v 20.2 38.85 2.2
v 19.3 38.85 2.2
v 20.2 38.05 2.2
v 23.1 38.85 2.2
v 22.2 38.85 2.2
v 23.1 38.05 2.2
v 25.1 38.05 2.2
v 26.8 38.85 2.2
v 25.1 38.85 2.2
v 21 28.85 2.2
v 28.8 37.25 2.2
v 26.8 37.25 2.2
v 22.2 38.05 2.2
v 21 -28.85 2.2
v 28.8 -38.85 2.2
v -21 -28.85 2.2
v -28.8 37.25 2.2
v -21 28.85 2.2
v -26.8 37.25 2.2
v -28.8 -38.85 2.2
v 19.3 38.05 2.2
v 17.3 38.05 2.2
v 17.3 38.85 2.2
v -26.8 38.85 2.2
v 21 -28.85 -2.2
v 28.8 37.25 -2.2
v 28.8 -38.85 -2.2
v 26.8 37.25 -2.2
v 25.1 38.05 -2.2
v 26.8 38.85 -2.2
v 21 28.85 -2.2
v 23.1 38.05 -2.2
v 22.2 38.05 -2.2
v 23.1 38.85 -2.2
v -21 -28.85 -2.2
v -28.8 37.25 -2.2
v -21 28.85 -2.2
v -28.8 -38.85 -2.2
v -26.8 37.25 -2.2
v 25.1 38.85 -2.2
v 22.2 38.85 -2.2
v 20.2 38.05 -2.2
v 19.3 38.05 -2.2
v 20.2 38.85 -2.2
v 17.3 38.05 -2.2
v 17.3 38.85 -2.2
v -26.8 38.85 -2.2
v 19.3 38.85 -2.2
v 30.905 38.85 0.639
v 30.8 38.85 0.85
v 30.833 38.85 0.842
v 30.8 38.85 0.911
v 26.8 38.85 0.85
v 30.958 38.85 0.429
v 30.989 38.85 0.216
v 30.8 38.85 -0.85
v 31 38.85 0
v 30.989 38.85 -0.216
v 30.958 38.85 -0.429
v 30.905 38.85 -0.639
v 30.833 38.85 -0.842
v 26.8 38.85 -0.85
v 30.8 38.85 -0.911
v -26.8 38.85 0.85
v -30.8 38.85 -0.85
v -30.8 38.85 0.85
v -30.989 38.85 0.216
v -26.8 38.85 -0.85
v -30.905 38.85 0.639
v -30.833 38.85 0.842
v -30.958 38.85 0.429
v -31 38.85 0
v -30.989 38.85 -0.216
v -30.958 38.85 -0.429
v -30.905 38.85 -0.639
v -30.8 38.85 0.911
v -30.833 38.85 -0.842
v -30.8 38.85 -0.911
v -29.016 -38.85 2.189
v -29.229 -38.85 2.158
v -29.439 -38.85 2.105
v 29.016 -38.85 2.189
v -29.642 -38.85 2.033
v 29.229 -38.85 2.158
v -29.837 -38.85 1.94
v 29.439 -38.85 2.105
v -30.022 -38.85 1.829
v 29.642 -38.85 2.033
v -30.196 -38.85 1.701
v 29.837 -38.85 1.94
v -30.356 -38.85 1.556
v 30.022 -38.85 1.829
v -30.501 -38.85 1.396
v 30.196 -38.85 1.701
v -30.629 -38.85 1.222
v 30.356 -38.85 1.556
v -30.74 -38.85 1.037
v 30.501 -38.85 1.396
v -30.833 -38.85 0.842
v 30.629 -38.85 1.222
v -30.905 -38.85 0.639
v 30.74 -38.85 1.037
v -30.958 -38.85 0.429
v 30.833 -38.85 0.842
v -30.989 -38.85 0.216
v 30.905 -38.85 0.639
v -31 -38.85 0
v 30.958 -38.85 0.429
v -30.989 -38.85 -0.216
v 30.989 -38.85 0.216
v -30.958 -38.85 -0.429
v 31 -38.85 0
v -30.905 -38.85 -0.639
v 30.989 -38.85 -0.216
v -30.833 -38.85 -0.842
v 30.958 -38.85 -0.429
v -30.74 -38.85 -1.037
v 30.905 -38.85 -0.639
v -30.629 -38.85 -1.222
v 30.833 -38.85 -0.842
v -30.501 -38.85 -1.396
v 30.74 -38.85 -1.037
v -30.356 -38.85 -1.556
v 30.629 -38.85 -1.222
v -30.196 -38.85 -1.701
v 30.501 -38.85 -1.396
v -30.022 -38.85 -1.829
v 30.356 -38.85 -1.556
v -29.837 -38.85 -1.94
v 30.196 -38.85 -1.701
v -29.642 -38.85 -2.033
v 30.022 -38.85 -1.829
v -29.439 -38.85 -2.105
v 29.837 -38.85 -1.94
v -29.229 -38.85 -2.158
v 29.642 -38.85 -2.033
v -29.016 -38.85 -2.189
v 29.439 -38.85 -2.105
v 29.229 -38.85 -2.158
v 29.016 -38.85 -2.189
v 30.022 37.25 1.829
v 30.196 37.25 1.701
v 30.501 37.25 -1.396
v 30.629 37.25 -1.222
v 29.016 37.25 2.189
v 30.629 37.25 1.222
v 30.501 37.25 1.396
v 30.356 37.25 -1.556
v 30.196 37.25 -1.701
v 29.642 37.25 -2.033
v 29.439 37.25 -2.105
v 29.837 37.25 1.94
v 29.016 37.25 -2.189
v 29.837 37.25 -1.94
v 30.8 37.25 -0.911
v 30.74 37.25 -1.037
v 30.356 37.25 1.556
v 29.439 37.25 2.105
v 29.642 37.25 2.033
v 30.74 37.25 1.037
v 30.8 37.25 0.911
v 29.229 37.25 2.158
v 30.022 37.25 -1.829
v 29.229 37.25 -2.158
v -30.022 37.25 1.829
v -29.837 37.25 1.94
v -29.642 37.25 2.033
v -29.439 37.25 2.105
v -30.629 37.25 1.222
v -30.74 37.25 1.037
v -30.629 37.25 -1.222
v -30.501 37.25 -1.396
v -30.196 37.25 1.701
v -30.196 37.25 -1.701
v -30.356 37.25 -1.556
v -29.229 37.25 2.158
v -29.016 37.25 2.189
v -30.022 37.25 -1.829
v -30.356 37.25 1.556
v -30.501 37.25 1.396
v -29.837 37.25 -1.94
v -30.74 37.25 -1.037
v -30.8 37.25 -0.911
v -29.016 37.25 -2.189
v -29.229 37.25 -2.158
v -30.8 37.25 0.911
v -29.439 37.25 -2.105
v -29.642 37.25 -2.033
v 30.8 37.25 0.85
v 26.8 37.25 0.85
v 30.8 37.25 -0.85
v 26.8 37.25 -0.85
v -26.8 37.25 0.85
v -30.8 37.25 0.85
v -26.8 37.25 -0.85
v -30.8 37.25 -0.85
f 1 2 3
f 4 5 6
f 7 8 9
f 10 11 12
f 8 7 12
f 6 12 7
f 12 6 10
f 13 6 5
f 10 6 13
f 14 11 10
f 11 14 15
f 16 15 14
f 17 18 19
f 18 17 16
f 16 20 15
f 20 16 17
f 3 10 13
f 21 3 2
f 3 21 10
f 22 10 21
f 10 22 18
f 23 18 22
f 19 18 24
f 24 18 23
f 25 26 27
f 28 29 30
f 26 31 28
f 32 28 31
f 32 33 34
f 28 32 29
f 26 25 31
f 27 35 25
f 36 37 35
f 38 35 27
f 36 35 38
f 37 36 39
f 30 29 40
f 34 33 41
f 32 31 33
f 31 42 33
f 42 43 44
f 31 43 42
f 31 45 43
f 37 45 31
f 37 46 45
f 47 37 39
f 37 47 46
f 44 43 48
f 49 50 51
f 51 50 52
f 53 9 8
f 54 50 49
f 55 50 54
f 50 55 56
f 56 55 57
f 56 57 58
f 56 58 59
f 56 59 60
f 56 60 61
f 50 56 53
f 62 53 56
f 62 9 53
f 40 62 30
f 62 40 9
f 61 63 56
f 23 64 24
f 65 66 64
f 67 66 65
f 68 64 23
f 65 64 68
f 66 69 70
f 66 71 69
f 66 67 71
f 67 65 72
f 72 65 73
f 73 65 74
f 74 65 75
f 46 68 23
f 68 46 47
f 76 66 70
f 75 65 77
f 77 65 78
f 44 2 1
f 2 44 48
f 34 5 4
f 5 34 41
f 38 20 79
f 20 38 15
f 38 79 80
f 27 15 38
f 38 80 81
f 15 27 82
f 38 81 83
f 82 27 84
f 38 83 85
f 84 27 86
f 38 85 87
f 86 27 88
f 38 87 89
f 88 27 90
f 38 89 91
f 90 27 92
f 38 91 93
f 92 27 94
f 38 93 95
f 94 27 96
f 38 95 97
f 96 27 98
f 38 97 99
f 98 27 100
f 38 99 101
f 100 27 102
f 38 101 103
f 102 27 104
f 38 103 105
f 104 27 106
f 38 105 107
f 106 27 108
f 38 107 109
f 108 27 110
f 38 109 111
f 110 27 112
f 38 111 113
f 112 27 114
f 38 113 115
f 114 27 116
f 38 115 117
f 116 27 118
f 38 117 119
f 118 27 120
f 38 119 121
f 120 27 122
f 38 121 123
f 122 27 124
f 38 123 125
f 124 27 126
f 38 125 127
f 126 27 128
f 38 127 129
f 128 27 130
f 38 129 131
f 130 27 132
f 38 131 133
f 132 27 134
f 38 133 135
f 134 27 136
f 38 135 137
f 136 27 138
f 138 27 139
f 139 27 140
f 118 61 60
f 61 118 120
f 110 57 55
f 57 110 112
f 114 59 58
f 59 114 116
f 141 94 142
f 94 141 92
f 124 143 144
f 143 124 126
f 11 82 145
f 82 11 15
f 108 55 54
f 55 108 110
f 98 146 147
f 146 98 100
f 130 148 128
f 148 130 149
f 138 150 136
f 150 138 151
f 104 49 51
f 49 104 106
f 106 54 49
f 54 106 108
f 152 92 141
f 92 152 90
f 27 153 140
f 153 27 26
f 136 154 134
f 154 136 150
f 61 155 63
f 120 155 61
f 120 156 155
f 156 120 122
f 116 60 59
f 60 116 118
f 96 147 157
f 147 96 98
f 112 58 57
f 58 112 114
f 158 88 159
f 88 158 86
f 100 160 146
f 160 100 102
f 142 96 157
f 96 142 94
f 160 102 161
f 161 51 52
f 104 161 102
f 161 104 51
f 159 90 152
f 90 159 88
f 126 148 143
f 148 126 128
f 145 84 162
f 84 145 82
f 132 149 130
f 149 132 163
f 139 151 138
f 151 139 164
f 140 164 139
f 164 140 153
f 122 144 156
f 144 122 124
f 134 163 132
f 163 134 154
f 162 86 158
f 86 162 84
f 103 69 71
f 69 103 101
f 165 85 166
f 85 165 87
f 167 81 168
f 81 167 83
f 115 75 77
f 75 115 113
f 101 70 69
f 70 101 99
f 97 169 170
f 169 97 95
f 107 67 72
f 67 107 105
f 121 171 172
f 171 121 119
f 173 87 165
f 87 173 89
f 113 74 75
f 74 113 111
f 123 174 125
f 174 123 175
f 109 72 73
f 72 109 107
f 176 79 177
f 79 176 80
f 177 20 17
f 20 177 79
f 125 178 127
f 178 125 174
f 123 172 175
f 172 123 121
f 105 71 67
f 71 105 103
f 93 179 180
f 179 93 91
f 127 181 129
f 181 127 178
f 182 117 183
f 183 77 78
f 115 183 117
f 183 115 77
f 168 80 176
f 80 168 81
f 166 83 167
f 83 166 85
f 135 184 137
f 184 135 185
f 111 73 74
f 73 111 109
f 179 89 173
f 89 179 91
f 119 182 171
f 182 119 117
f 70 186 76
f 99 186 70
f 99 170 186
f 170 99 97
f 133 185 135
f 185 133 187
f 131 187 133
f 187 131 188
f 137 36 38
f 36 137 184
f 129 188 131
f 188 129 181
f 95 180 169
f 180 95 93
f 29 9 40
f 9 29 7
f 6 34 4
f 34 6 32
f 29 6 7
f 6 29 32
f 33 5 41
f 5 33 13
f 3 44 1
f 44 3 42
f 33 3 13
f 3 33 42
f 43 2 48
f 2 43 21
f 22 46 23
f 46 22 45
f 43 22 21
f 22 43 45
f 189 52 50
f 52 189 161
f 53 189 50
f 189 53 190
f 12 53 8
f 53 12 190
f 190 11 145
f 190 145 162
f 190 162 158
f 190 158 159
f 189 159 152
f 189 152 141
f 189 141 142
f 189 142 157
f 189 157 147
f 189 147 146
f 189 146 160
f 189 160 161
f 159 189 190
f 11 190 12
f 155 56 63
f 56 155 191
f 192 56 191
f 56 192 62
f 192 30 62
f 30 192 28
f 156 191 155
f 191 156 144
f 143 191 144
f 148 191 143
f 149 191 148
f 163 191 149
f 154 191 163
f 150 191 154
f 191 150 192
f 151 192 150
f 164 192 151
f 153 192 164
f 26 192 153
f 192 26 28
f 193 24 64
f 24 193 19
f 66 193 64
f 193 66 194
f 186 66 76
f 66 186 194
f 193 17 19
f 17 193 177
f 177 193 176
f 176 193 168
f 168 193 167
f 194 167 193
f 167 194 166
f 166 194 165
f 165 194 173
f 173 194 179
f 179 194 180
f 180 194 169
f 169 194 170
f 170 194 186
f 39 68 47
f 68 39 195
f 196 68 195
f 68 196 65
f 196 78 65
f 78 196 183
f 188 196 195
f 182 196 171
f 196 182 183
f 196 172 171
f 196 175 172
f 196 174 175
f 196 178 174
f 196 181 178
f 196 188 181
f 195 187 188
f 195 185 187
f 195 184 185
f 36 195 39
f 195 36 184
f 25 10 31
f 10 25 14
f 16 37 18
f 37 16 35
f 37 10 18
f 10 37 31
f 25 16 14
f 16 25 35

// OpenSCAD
$fn=64; 

// total measurements
tw = 62.0;
td = 77.7;
th = 4.4;

// cylinders
r = th / 2;

// block
bw = tw - r - r;

// edges for the battery holding slots
ew = 2.0;
eh = (4.4-1.7)/2;
ed = 1.4+0.2;

// optional inner hole padding
ip = 20;

difference () {
    union () {
        cube([bw, td, th], true);
        translate ([bw/2,td/2,0]) {
            rotate ([90,0,0]) {
                cylinder(td, r, r);
            }
        }
        translate ([-bw/2,td/2,0]) {
            rotate ([90,0,0]) {
                cylinder(td, r, r);
            }
        }
    }
    
    // edges to slot in
    translate ([bw/2,td/2,th/2]) {
        cube([ew*2, ed*2, eh*2], center=true);
    }
    translate ([bw/2,td/2,-th/2]) {
        cube([ew*2, ed*2, eh*2], center=true);
    }
    translate ([-bw/2,td/2,th/2]) {
        cube([ew*2, ed*2, eh*2], center=true);
    }
    translate ([-bw/2,td/2,-th/2]) {
        cube([ew*2, ed*2, eh*2], center=true);
    }
    
    // empty middle (to save material and time)
    cube([tw-ip, td-ip, th+1], center=true);
    
    // small spaces for the contacts
    sw=2.0;
    sfromside=6.9;
    sinterval=2.9;
    sd=0.8;
    for ( x = [0 : sinterval : 2*sinterval] ){
        sc=tw/2-sfromside;
        translate ([sc-x,td/2,0]) {
            cube([sw, 2*sd, th+0.1], center=true);
        }
    }
}
